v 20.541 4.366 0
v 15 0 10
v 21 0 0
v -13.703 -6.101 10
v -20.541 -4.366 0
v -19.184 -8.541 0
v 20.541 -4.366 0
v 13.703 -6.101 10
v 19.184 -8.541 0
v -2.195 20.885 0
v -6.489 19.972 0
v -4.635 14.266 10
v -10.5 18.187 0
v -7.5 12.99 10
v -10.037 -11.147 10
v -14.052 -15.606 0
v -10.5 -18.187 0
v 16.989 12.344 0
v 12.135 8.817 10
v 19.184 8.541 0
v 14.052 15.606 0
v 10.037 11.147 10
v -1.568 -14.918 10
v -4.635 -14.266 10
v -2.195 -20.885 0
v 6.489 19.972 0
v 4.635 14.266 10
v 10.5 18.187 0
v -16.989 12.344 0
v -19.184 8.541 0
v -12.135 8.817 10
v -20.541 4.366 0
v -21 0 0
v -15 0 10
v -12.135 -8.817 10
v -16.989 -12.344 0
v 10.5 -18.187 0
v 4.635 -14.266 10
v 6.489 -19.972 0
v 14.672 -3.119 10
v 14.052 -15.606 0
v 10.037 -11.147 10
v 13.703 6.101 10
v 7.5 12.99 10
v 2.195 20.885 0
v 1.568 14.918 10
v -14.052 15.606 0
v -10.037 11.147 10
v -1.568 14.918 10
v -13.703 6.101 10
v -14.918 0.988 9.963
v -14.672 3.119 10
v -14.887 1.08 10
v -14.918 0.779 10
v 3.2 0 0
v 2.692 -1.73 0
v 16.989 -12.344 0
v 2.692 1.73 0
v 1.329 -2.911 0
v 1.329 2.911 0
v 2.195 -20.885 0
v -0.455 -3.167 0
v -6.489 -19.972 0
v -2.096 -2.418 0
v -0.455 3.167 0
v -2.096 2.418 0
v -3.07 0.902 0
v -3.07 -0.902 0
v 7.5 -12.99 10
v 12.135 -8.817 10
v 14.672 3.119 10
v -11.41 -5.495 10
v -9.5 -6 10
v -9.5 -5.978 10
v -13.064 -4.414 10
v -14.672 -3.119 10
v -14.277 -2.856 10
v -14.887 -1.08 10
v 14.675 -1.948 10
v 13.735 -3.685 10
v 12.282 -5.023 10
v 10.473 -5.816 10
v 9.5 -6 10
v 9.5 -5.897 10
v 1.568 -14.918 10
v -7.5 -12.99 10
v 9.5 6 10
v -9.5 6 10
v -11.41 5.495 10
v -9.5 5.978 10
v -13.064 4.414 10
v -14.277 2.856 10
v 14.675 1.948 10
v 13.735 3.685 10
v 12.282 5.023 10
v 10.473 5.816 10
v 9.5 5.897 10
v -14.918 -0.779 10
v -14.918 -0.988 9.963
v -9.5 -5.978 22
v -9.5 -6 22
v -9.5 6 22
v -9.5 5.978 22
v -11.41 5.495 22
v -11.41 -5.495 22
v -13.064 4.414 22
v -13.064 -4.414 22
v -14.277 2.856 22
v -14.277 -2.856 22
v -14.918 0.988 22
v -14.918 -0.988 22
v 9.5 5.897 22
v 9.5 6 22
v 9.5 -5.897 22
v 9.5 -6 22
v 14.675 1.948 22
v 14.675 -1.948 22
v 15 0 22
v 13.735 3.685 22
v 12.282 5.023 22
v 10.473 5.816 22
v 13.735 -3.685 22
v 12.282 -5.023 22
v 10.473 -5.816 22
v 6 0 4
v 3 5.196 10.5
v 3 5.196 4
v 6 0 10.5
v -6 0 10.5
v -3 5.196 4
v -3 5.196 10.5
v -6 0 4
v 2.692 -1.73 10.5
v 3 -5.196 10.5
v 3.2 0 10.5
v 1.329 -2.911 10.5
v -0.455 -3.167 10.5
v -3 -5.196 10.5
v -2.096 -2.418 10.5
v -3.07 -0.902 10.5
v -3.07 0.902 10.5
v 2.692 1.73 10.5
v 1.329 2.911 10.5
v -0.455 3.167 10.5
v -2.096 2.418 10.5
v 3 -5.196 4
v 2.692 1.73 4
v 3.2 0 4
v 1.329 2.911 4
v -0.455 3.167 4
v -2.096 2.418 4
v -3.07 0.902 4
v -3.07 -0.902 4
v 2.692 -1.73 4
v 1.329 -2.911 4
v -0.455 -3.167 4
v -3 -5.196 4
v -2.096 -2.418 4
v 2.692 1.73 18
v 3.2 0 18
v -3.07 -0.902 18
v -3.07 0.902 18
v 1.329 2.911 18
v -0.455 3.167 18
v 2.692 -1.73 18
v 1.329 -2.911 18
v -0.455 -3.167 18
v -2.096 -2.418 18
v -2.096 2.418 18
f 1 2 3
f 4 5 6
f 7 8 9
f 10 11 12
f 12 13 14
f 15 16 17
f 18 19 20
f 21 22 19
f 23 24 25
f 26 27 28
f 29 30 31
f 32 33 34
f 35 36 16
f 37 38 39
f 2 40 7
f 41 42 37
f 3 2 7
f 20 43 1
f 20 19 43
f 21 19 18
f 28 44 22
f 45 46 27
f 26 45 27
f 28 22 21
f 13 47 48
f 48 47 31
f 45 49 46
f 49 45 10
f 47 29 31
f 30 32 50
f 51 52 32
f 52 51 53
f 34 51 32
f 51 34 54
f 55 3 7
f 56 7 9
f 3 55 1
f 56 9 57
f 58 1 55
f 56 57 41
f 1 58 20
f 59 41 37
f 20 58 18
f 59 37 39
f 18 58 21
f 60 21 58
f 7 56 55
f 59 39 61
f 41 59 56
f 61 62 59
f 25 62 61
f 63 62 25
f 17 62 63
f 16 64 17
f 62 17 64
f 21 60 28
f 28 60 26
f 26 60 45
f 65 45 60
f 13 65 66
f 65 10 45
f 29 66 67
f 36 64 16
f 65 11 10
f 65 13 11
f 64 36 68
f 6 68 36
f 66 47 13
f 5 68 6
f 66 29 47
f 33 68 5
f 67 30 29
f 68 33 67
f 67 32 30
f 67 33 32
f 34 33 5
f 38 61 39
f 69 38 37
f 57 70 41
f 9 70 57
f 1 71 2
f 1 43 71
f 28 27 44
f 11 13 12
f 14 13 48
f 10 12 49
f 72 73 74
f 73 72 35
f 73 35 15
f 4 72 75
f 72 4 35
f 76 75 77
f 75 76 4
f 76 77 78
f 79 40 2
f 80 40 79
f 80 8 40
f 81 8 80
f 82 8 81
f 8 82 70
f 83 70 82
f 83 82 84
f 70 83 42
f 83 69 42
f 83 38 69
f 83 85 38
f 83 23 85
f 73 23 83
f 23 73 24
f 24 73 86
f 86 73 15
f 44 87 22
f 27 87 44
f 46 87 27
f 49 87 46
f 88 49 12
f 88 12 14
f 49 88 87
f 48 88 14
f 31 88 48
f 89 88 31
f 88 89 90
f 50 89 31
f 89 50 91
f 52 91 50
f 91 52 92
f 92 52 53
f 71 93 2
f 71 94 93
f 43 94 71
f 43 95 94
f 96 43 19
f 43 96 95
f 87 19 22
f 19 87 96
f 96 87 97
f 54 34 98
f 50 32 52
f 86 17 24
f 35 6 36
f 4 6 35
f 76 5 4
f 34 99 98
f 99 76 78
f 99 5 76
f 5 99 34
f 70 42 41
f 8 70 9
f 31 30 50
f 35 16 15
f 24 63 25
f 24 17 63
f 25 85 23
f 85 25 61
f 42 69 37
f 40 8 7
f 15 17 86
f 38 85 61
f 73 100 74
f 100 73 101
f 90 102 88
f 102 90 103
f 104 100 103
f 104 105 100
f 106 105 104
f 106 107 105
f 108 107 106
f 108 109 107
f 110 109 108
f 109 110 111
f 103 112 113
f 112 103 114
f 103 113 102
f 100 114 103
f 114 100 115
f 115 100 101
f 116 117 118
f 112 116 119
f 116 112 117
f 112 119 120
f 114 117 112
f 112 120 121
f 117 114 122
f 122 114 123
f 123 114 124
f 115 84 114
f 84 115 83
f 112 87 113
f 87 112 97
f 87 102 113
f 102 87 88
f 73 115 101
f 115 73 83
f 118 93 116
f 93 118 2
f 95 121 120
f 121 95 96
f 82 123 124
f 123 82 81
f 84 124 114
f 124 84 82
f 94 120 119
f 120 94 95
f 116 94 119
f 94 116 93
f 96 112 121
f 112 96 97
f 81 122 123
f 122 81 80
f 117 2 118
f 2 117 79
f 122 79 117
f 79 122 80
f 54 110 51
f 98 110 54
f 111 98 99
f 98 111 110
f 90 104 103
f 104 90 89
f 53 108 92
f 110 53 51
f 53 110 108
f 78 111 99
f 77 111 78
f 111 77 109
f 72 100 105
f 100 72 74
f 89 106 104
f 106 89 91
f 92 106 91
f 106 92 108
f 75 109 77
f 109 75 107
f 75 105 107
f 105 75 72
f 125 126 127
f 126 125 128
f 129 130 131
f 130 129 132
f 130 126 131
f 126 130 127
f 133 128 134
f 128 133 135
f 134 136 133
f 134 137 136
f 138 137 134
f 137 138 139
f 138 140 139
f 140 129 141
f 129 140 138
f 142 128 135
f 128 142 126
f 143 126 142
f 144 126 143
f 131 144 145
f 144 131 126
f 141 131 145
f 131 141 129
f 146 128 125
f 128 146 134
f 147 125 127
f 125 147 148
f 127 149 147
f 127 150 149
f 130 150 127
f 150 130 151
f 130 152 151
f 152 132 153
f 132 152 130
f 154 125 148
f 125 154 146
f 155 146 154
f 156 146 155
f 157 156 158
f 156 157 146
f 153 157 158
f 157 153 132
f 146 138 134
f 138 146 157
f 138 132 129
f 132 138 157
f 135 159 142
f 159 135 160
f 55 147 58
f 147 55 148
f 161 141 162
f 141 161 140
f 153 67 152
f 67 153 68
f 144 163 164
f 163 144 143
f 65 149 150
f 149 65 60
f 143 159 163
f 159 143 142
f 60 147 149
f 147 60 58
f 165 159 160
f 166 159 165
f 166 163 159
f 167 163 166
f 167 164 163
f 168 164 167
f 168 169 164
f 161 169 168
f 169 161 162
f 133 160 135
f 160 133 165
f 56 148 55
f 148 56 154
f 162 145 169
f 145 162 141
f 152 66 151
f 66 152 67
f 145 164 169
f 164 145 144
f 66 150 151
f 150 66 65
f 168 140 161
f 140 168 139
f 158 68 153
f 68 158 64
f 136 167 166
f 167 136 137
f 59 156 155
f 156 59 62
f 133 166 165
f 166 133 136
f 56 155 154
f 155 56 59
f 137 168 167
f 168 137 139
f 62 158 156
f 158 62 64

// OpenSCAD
module nut()
{
    $fn = 6;
cylinder(6.5,6,6);
};

difference()
{
    union()
    {
        difference(){
              union(){
                cylinder(10,21,15);
                translate([0,0,14.5]) cube([19,12,15], true);
                 translate([9,0,5]) cylinder(17,6,6);
                 translate([-9,0,5]) cylinder(17,6,6);
                }
            translate([0,0,4]) nut();
              translate([0,0,-4])    cylinder(22,3.2,3.2);

        }
    }
    //translate([0,25,0]) cube([50,50,200], true);
    
}
